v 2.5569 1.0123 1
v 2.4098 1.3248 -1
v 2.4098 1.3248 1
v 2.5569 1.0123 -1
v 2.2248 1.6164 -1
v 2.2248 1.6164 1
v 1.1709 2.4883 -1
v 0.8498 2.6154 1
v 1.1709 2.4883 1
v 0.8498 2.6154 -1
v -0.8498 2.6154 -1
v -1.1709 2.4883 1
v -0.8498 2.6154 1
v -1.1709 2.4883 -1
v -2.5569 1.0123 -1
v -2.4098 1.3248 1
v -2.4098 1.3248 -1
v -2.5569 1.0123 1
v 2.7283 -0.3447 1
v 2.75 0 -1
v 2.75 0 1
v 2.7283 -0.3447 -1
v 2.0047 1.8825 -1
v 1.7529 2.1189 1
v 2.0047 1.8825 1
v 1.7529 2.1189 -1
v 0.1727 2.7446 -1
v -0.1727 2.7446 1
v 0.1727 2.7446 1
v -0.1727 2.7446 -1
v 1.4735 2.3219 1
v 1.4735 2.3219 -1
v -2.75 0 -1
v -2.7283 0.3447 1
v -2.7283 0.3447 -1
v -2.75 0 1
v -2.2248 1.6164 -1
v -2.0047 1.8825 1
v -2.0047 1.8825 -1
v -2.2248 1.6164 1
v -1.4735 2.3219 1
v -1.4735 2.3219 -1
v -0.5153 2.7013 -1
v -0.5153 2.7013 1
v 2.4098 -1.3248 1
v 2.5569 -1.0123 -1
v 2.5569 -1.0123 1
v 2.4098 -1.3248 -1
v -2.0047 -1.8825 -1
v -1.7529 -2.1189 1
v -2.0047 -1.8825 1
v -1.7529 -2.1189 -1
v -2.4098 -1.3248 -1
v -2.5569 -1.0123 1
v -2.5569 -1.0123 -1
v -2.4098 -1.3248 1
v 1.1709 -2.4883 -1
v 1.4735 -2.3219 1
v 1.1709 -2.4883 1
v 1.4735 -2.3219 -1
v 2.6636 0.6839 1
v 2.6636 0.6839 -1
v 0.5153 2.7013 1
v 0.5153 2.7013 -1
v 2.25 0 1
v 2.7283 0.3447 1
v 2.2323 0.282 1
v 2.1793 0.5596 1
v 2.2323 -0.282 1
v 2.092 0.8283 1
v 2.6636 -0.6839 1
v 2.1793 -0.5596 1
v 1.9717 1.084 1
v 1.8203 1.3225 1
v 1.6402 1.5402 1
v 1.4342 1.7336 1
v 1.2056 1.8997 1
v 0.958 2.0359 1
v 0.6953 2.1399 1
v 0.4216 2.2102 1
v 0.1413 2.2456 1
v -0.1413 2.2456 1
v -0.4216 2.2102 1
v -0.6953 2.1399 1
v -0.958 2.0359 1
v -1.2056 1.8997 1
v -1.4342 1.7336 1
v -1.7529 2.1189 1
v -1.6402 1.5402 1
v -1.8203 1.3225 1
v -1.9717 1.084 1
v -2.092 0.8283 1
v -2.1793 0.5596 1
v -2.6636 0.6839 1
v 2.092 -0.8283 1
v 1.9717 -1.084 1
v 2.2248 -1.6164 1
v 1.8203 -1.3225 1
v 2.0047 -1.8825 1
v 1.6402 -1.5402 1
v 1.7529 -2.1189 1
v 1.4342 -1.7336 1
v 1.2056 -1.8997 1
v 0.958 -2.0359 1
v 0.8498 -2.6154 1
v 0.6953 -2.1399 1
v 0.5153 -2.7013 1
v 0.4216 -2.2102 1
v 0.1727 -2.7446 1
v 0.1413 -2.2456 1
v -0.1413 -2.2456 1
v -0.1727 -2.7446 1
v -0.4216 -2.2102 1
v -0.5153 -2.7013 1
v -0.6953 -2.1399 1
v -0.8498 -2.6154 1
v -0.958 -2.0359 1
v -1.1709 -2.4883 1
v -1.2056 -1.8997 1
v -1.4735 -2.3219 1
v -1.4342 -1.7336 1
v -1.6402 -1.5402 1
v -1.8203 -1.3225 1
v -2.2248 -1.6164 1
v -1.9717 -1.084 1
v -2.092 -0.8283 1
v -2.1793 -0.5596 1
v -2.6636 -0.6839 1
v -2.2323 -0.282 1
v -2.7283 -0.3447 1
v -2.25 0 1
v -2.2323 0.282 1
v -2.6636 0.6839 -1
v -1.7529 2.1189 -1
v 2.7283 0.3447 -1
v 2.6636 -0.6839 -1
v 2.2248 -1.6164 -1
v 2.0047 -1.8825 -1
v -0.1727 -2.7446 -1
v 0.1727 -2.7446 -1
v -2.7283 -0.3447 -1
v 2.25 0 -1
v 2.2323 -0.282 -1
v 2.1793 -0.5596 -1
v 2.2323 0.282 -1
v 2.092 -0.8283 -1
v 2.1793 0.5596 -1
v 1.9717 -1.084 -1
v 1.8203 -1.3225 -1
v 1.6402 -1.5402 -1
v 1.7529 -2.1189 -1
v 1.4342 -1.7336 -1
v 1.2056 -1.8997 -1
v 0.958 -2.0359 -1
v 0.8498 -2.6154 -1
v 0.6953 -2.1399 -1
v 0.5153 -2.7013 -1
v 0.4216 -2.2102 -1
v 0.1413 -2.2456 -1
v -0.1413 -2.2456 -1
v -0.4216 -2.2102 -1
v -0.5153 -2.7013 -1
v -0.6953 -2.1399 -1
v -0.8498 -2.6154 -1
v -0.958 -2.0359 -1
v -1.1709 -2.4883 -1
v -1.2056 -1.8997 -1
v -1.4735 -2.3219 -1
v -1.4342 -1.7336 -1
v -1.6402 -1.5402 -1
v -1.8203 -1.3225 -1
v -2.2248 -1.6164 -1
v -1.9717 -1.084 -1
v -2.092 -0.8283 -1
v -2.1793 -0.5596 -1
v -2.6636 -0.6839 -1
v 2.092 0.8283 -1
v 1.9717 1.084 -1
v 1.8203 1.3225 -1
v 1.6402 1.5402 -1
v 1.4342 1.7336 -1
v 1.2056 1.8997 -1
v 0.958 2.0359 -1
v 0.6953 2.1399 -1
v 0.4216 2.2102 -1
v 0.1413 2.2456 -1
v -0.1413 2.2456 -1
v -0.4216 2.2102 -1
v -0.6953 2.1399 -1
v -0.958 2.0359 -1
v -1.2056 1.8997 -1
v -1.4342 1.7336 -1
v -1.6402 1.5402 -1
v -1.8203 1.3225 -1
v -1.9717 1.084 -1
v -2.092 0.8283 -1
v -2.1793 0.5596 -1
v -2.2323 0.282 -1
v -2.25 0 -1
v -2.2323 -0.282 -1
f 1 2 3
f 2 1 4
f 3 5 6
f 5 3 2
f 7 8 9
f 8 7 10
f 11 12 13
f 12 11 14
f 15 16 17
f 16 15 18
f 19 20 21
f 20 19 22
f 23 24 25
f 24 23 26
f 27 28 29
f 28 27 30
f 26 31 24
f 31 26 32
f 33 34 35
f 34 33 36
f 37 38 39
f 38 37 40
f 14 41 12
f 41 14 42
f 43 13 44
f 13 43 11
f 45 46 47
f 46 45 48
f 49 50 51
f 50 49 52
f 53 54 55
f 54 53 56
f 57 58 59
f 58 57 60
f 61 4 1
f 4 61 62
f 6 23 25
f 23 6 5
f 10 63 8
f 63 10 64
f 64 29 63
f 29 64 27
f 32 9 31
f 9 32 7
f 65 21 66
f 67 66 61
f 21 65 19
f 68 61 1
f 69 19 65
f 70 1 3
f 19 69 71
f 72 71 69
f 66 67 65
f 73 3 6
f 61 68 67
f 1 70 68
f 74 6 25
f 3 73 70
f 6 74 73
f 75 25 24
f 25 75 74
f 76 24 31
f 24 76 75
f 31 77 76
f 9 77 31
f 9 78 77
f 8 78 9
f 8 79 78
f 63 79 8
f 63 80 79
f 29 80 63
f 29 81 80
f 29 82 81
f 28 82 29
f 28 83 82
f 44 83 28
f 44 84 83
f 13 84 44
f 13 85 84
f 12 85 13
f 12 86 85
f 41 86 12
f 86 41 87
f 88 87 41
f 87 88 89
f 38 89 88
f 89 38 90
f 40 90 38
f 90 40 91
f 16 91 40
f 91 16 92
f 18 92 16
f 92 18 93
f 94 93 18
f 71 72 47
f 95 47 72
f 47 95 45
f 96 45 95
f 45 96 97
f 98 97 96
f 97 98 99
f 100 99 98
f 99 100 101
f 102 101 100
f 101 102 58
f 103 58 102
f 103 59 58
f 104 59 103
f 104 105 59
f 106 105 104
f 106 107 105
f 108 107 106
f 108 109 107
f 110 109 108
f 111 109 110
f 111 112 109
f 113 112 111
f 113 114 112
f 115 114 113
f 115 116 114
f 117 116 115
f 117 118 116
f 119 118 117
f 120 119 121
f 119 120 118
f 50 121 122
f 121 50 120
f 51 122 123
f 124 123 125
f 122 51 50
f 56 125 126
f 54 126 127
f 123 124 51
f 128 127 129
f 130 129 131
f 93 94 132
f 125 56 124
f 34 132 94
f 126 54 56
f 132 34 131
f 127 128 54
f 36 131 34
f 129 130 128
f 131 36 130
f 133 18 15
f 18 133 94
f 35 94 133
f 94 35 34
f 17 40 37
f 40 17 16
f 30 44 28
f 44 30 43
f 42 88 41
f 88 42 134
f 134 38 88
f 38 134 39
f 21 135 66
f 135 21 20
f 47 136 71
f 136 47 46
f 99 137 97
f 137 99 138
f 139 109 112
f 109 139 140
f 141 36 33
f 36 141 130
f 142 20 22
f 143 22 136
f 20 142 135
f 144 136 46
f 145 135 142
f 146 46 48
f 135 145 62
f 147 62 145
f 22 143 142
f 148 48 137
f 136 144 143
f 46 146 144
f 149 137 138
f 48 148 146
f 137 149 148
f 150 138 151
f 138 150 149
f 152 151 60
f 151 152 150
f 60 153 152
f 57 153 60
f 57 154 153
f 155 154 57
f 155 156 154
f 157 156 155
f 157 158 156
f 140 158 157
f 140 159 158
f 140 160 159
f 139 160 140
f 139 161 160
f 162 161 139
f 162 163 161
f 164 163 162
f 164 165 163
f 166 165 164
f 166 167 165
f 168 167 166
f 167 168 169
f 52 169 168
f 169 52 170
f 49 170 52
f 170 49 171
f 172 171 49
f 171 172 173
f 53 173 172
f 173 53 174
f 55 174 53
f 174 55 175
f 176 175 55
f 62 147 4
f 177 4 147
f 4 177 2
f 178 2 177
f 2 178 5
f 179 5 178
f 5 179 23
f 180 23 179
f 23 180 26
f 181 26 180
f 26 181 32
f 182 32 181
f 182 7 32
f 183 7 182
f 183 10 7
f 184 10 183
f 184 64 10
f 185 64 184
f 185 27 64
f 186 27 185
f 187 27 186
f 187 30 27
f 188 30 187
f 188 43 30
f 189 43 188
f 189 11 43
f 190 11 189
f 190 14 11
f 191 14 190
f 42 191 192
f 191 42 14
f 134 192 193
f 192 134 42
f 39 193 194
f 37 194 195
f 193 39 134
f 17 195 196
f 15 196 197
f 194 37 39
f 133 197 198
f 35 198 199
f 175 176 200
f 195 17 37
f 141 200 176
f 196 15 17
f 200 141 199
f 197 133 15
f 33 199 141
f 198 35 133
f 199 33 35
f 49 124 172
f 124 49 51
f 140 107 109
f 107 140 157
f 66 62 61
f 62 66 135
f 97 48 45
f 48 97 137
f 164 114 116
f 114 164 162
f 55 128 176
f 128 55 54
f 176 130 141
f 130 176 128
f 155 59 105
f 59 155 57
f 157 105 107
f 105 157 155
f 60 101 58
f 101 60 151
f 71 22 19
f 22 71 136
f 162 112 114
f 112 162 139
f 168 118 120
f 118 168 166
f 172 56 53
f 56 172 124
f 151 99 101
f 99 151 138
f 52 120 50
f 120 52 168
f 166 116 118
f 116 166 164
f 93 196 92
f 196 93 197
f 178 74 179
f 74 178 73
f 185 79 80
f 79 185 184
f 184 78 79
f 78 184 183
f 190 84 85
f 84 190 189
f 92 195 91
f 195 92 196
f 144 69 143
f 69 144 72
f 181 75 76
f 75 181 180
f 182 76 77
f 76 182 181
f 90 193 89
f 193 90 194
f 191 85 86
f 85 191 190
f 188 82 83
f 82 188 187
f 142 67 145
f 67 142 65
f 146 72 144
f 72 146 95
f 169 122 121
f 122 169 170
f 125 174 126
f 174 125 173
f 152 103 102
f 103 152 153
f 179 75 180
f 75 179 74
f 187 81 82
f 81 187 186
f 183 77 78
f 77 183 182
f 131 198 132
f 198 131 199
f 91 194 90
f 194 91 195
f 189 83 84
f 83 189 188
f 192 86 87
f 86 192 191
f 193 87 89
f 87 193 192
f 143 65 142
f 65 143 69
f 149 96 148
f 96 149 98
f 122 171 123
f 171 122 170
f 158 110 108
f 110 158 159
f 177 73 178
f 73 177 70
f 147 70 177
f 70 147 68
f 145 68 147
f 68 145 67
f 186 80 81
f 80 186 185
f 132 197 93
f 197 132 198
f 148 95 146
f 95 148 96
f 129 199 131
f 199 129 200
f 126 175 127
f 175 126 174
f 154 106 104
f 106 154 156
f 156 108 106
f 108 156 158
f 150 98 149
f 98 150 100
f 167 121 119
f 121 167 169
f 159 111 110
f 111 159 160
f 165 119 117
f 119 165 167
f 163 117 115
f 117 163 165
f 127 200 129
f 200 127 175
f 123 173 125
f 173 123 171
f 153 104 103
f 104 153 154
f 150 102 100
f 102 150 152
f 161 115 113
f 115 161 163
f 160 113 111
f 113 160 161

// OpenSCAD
$fn = 50;


difference() {
	union() {
		translate(v = [0, 0, -1.0000000000]) {
			cylinder(h = 2, r = 2.7500000000);
		}
	}
	union() {
		translate(v = [0, 0, -100.0000000000]) {
			cylinder(h = 200, r = 2.2500000000);
		}
	}
}
